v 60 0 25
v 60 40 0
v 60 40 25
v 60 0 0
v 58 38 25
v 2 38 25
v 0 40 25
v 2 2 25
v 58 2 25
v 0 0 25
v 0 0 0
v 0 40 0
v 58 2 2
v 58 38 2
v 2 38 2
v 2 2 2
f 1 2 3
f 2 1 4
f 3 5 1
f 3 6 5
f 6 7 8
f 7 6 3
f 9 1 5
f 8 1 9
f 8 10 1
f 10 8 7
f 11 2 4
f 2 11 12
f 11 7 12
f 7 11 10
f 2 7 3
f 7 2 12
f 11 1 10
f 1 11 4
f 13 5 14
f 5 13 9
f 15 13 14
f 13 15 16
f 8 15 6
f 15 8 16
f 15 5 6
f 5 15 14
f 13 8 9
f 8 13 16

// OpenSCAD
// Parametric box
length = 60;   // [20:5:200]
width  = 40;   // [20:5:150]
height = 25;   // [10:5:100]
wall   = 2;    // [1:0.5:6]

difference() {
    cube([length, width, height]);
    translate([wall, wall, wall])
        cube([length - 2*wall, width - 2*wall, height]);
}
